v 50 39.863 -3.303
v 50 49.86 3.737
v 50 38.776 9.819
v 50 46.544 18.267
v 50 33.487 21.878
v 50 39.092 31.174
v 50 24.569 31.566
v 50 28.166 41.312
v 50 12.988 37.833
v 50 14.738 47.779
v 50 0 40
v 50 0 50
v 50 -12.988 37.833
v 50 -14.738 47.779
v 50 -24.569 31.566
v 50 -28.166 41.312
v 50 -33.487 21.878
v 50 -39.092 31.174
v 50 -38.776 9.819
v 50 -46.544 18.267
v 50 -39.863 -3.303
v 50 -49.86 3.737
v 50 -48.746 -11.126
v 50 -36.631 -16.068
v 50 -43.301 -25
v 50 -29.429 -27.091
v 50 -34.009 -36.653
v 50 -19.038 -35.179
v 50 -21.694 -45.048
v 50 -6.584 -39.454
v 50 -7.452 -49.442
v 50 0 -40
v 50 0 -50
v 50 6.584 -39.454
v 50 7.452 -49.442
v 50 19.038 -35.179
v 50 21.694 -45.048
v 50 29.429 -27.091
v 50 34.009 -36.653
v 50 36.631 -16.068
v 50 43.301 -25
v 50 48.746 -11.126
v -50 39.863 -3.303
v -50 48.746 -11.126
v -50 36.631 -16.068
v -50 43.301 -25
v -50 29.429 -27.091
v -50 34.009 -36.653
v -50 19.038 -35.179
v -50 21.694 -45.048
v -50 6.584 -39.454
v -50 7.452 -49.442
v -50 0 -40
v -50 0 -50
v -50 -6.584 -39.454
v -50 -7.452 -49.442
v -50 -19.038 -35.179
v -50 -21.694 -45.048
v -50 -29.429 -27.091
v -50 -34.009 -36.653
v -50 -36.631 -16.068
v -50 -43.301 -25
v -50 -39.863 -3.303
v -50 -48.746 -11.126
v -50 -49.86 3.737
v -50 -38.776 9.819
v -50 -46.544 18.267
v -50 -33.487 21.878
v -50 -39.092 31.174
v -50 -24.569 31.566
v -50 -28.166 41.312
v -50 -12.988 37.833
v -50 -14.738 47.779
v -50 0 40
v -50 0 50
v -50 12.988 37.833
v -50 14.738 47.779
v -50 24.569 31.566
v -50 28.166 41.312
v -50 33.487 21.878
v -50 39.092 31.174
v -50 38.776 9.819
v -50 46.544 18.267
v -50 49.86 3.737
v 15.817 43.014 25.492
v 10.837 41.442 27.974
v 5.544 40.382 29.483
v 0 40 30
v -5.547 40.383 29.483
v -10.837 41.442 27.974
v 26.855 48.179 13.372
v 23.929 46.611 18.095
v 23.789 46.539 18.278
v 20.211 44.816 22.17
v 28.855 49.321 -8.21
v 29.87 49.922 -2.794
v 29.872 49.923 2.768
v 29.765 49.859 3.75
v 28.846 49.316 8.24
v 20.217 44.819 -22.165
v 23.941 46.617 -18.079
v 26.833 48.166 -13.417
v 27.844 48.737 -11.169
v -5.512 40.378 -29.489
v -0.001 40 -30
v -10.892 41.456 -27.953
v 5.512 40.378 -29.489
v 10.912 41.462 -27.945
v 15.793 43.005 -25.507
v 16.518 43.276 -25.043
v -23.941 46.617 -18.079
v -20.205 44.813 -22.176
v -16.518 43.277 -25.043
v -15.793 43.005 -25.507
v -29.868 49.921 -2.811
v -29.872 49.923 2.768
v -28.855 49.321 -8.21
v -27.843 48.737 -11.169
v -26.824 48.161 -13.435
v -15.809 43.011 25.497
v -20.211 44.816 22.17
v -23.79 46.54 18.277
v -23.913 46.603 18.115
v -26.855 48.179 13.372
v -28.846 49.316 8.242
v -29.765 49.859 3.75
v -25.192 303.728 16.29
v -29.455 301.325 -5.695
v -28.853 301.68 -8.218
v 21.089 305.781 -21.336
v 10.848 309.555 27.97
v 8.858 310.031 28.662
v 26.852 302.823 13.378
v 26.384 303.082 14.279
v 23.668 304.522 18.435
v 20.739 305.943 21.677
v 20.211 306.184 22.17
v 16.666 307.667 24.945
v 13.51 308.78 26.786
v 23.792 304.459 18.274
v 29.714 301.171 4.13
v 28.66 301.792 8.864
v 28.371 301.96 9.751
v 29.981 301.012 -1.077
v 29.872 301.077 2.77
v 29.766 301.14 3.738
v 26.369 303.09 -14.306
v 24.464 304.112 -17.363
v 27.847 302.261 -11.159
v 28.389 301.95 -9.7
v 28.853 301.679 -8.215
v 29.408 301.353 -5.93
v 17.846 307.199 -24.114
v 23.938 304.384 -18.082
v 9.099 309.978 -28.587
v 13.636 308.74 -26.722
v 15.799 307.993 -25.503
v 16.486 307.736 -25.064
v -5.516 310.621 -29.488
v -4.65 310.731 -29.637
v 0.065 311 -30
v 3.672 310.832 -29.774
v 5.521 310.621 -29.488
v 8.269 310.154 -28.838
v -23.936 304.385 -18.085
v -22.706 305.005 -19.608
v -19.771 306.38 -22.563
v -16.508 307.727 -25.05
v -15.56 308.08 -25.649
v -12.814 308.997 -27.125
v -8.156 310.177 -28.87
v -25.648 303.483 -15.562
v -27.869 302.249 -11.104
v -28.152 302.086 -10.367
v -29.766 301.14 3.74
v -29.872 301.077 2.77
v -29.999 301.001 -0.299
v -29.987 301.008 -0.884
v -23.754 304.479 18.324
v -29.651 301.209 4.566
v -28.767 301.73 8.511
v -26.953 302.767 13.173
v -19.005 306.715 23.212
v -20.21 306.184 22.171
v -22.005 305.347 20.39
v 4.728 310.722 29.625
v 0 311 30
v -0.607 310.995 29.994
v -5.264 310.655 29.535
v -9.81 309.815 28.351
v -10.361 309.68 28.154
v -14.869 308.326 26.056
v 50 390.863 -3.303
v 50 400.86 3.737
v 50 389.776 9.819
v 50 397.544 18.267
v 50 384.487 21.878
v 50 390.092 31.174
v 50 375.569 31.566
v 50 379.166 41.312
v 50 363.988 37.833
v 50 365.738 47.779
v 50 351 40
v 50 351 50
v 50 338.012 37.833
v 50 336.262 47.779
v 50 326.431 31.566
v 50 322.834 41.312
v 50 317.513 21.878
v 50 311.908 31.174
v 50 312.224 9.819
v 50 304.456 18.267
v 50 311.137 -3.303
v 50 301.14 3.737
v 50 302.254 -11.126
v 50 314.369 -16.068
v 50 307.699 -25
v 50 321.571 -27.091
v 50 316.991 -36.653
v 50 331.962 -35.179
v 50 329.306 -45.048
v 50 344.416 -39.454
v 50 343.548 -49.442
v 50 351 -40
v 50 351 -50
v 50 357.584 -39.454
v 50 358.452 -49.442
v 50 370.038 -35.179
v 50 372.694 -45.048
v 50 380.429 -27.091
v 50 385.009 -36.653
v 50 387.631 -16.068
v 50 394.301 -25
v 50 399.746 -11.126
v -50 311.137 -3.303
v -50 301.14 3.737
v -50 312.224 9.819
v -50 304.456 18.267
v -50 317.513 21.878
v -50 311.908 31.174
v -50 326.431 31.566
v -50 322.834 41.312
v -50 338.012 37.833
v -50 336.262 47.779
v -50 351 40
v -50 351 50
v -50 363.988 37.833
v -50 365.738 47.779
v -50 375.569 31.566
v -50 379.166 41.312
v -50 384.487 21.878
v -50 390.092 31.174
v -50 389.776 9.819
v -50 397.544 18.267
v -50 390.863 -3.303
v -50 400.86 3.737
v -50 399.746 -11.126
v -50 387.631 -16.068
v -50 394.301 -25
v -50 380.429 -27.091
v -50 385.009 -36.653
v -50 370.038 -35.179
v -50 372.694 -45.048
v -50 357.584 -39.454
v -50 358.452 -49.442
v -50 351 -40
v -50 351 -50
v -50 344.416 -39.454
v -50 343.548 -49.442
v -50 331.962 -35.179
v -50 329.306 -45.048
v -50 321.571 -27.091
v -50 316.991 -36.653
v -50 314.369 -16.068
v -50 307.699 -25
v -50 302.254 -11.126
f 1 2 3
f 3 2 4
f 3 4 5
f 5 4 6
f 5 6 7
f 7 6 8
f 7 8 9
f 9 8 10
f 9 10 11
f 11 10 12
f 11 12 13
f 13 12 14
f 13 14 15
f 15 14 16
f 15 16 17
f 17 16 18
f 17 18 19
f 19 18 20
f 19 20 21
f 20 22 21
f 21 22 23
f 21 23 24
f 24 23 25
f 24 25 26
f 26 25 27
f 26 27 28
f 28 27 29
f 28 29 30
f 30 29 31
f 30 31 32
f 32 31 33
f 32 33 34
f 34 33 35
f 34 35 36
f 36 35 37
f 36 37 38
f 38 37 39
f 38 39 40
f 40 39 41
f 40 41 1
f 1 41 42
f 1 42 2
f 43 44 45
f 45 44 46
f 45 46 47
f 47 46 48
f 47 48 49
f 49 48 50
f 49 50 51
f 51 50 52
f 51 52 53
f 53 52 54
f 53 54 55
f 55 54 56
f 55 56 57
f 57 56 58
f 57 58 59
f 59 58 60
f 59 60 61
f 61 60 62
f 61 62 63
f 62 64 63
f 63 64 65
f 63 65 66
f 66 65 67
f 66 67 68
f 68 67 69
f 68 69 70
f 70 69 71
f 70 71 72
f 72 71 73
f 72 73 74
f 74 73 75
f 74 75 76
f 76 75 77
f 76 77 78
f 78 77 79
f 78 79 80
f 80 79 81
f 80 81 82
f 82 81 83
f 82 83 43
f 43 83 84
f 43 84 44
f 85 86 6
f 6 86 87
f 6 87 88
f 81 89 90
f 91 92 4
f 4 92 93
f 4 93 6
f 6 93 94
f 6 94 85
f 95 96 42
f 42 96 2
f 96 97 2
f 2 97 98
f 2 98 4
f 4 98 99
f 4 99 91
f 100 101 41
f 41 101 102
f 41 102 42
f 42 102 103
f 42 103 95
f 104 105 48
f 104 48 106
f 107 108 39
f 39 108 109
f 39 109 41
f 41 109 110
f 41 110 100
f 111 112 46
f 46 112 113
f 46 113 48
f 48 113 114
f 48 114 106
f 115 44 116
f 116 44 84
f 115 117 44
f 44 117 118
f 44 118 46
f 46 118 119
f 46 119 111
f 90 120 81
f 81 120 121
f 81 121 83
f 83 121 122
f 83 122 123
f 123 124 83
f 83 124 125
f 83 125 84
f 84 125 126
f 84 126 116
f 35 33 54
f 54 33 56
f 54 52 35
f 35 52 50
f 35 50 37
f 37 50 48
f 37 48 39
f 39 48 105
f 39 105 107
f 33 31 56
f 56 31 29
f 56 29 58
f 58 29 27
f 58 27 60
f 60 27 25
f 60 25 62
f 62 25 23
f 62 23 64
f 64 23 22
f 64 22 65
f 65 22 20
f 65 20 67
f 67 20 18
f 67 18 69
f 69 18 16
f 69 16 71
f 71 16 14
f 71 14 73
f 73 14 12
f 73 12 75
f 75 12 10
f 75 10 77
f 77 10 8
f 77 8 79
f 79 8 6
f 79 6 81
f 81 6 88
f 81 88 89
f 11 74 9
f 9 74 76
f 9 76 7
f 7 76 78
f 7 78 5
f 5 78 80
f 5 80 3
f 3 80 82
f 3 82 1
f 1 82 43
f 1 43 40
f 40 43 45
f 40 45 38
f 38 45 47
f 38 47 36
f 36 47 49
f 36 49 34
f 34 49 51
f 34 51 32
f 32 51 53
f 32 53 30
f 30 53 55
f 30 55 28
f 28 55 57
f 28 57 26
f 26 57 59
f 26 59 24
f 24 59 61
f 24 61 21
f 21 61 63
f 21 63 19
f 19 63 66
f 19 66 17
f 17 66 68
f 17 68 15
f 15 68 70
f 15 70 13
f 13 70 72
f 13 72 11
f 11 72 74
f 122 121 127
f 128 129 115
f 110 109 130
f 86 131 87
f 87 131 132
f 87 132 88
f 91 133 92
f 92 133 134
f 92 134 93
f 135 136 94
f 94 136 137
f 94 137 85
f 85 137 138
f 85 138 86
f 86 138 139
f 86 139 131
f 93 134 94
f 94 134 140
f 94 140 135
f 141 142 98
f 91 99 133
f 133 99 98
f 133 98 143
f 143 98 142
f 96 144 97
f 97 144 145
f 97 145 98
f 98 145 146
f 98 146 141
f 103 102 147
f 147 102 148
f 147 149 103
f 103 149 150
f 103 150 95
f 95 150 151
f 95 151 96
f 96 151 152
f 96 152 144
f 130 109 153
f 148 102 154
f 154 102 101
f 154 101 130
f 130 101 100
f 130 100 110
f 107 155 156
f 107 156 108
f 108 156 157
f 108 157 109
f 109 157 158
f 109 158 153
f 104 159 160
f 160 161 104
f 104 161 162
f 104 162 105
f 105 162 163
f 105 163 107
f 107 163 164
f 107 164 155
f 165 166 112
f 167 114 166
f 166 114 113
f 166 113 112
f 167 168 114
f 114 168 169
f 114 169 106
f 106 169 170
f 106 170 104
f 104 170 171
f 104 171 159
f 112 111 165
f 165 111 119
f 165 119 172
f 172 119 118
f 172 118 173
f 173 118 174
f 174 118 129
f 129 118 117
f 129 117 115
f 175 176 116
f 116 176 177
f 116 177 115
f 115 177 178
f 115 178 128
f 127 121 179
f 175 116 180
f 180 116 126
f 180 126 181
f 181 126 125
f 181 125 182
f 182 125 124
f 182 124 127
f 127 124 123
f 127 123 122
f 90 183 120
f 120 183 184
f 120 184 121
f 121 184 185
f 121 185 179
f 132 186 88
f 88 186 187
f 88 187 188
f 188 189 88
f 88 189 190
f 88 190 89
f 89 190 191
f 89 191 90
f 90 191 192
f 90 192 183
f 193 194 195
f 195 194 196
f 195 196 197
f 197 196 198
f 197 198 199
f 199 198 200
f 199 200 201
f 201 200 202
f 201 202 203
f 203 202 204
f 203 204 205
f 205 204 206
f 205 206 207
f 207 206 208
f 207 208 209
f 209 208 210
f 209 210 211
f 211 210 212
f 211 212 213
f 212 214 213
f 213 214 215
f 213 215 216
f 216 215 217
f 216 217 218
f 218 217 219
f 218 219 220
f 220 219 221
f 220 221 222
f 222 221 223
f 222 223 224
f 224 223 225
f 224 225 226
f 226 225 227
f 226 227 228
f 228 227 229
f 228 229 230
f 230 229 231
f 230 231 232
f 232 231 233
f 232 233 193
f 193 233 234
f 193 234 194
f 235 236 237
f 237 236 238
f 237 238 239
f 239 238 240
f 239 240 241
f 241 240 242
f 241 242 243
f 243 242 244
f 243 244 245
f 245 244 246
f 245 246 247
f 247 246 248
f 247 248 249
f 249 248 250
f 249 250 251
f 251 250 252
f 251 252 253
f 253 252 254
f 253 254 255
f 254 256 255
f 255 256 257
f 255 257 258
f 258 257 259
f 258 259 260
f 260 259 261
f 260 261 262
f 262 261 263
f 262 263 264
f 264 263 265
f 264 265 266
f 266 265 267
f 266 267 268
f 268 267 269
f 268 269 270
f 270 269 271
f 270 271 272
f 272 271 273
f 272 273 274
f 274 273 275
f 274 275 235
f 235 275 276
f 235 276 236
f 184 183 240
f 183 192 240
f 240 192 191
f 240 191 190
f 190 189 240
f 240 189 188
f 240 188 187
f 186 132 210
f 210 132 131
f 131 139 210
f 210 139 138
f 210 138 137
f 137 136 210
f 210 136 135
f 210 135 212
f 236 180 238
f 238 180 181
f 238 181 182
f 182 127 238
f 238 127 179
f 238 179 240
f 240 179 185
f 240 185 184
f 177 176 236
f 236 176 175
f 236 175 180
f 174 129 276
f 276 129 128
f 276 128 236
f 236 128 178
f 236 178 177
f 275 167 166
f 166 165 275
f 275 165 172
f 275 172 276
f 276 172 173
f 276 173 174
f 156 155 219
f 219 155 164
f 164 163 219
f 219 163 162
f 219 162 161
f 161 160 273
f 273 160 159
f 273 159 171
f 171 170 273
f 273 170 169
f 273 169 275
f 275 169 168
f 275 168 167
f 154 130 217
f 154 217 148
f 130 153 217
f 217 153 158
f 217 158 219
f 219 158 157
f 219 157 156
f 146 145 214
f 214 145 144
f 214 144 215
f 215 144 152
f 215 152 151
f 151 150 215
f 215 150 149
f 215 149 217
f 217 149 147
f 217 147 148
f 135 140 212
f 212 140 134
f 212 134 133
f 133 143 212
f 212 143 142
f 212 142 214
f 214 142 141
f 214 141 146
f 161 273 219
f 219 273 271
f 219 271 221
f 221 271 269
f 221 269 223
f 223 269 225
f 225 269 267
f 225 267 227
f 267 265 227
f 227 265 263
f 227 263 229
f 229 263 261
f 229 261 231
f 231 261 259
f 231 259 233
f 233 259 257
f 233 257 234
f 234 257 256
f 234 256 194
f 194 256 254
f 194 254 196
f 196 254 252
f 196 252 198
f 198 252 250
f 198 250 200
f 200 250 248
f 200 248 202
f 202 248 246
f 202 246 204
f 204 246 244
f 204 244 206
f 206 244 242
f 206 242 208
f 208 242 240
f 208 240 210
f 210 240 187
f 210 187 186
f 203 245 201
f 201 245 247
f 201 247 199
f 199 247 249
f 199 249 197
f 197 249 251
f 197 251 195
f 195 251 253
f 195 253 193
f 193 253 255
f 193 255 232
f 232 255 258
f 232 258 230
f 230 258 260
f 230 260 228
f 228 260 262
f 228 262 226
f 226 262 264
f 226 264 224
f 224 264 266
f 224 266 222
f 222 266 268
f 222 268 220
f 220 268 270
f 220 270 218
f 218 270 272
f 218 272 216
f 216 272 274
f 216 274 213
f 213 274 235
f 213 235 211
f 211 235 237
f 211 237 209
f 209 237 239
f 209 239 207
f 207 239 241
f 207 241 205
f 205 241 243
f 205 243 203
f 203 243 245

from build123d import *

# Parameters (mm, degrees)
SKETCH_1_R           = 50
SKETCH_1_R_2         = 40
EXTRUDE_1_DEPTH      = 50
EXTRUDE_2_REACH      = 238.327
EXTRUDE_2_END_RADIUS = 50
SKETCH_2_R           = 30


with BuildPart() as part:
    # 草图1 → 凸台-拉伸1 (new, symmetric)
    with BuildSketch(Plane(origin=(0, 0, 0), x_dir=(0, 0, -1), z_dir=(1, 0, 0))):
        Circle(SKETCH_1_R)
        Circle(SKETCH_1_R_2, mode=Mode.SUBTRACT)
    extrude_1 = extrude(amount=EXTRUDE_1_DEPTH, both=True)

    # 凸台-拉伸2: up to this cylinder (the profile starts outside it)
    extrude_2_end = Plane(origin=(0, 0, 0), z_dir=(-1, 0, 0)) * Cylinder(EXTRUDE_2_END_RADIUS, 577.654, mode=Mode.PRIVATE)
    # 草图2 → 凸台-拉伸2 (add, up to the surface)
    with BuildSketch(Plane(origin=(0, 175.5, 0), x_dir=(1, 0, 0), z_dir=(0, 1, 0)), mode=Mode.PRIVATE) as extrude_2_sk1:
        with Locations(Location((0, 0, 0), (0, 0, 270))):
            Circle(SKETCH_2_R)
    extrude_2_tool1 = extrude(extrude_2_sk1.sketch, amount=-EXTRUDE_2_REACH, mode=Mode.PRIVATE) - extrude_2_end
    extrude_2 = extrude_2_tool1.solids().sort_by_distance((0, 175.5, 0))[0]
    add(extrude_2)

    # 镜向2: 凸台-拉伸1, 凸台-拉伸2 across plane
    add(extrude_1.mirror(Plane.ZX.offset(175.5)))
    add(extrude_2.mirror(Plane.ZX.offset(175.5)))


solid = part.part
